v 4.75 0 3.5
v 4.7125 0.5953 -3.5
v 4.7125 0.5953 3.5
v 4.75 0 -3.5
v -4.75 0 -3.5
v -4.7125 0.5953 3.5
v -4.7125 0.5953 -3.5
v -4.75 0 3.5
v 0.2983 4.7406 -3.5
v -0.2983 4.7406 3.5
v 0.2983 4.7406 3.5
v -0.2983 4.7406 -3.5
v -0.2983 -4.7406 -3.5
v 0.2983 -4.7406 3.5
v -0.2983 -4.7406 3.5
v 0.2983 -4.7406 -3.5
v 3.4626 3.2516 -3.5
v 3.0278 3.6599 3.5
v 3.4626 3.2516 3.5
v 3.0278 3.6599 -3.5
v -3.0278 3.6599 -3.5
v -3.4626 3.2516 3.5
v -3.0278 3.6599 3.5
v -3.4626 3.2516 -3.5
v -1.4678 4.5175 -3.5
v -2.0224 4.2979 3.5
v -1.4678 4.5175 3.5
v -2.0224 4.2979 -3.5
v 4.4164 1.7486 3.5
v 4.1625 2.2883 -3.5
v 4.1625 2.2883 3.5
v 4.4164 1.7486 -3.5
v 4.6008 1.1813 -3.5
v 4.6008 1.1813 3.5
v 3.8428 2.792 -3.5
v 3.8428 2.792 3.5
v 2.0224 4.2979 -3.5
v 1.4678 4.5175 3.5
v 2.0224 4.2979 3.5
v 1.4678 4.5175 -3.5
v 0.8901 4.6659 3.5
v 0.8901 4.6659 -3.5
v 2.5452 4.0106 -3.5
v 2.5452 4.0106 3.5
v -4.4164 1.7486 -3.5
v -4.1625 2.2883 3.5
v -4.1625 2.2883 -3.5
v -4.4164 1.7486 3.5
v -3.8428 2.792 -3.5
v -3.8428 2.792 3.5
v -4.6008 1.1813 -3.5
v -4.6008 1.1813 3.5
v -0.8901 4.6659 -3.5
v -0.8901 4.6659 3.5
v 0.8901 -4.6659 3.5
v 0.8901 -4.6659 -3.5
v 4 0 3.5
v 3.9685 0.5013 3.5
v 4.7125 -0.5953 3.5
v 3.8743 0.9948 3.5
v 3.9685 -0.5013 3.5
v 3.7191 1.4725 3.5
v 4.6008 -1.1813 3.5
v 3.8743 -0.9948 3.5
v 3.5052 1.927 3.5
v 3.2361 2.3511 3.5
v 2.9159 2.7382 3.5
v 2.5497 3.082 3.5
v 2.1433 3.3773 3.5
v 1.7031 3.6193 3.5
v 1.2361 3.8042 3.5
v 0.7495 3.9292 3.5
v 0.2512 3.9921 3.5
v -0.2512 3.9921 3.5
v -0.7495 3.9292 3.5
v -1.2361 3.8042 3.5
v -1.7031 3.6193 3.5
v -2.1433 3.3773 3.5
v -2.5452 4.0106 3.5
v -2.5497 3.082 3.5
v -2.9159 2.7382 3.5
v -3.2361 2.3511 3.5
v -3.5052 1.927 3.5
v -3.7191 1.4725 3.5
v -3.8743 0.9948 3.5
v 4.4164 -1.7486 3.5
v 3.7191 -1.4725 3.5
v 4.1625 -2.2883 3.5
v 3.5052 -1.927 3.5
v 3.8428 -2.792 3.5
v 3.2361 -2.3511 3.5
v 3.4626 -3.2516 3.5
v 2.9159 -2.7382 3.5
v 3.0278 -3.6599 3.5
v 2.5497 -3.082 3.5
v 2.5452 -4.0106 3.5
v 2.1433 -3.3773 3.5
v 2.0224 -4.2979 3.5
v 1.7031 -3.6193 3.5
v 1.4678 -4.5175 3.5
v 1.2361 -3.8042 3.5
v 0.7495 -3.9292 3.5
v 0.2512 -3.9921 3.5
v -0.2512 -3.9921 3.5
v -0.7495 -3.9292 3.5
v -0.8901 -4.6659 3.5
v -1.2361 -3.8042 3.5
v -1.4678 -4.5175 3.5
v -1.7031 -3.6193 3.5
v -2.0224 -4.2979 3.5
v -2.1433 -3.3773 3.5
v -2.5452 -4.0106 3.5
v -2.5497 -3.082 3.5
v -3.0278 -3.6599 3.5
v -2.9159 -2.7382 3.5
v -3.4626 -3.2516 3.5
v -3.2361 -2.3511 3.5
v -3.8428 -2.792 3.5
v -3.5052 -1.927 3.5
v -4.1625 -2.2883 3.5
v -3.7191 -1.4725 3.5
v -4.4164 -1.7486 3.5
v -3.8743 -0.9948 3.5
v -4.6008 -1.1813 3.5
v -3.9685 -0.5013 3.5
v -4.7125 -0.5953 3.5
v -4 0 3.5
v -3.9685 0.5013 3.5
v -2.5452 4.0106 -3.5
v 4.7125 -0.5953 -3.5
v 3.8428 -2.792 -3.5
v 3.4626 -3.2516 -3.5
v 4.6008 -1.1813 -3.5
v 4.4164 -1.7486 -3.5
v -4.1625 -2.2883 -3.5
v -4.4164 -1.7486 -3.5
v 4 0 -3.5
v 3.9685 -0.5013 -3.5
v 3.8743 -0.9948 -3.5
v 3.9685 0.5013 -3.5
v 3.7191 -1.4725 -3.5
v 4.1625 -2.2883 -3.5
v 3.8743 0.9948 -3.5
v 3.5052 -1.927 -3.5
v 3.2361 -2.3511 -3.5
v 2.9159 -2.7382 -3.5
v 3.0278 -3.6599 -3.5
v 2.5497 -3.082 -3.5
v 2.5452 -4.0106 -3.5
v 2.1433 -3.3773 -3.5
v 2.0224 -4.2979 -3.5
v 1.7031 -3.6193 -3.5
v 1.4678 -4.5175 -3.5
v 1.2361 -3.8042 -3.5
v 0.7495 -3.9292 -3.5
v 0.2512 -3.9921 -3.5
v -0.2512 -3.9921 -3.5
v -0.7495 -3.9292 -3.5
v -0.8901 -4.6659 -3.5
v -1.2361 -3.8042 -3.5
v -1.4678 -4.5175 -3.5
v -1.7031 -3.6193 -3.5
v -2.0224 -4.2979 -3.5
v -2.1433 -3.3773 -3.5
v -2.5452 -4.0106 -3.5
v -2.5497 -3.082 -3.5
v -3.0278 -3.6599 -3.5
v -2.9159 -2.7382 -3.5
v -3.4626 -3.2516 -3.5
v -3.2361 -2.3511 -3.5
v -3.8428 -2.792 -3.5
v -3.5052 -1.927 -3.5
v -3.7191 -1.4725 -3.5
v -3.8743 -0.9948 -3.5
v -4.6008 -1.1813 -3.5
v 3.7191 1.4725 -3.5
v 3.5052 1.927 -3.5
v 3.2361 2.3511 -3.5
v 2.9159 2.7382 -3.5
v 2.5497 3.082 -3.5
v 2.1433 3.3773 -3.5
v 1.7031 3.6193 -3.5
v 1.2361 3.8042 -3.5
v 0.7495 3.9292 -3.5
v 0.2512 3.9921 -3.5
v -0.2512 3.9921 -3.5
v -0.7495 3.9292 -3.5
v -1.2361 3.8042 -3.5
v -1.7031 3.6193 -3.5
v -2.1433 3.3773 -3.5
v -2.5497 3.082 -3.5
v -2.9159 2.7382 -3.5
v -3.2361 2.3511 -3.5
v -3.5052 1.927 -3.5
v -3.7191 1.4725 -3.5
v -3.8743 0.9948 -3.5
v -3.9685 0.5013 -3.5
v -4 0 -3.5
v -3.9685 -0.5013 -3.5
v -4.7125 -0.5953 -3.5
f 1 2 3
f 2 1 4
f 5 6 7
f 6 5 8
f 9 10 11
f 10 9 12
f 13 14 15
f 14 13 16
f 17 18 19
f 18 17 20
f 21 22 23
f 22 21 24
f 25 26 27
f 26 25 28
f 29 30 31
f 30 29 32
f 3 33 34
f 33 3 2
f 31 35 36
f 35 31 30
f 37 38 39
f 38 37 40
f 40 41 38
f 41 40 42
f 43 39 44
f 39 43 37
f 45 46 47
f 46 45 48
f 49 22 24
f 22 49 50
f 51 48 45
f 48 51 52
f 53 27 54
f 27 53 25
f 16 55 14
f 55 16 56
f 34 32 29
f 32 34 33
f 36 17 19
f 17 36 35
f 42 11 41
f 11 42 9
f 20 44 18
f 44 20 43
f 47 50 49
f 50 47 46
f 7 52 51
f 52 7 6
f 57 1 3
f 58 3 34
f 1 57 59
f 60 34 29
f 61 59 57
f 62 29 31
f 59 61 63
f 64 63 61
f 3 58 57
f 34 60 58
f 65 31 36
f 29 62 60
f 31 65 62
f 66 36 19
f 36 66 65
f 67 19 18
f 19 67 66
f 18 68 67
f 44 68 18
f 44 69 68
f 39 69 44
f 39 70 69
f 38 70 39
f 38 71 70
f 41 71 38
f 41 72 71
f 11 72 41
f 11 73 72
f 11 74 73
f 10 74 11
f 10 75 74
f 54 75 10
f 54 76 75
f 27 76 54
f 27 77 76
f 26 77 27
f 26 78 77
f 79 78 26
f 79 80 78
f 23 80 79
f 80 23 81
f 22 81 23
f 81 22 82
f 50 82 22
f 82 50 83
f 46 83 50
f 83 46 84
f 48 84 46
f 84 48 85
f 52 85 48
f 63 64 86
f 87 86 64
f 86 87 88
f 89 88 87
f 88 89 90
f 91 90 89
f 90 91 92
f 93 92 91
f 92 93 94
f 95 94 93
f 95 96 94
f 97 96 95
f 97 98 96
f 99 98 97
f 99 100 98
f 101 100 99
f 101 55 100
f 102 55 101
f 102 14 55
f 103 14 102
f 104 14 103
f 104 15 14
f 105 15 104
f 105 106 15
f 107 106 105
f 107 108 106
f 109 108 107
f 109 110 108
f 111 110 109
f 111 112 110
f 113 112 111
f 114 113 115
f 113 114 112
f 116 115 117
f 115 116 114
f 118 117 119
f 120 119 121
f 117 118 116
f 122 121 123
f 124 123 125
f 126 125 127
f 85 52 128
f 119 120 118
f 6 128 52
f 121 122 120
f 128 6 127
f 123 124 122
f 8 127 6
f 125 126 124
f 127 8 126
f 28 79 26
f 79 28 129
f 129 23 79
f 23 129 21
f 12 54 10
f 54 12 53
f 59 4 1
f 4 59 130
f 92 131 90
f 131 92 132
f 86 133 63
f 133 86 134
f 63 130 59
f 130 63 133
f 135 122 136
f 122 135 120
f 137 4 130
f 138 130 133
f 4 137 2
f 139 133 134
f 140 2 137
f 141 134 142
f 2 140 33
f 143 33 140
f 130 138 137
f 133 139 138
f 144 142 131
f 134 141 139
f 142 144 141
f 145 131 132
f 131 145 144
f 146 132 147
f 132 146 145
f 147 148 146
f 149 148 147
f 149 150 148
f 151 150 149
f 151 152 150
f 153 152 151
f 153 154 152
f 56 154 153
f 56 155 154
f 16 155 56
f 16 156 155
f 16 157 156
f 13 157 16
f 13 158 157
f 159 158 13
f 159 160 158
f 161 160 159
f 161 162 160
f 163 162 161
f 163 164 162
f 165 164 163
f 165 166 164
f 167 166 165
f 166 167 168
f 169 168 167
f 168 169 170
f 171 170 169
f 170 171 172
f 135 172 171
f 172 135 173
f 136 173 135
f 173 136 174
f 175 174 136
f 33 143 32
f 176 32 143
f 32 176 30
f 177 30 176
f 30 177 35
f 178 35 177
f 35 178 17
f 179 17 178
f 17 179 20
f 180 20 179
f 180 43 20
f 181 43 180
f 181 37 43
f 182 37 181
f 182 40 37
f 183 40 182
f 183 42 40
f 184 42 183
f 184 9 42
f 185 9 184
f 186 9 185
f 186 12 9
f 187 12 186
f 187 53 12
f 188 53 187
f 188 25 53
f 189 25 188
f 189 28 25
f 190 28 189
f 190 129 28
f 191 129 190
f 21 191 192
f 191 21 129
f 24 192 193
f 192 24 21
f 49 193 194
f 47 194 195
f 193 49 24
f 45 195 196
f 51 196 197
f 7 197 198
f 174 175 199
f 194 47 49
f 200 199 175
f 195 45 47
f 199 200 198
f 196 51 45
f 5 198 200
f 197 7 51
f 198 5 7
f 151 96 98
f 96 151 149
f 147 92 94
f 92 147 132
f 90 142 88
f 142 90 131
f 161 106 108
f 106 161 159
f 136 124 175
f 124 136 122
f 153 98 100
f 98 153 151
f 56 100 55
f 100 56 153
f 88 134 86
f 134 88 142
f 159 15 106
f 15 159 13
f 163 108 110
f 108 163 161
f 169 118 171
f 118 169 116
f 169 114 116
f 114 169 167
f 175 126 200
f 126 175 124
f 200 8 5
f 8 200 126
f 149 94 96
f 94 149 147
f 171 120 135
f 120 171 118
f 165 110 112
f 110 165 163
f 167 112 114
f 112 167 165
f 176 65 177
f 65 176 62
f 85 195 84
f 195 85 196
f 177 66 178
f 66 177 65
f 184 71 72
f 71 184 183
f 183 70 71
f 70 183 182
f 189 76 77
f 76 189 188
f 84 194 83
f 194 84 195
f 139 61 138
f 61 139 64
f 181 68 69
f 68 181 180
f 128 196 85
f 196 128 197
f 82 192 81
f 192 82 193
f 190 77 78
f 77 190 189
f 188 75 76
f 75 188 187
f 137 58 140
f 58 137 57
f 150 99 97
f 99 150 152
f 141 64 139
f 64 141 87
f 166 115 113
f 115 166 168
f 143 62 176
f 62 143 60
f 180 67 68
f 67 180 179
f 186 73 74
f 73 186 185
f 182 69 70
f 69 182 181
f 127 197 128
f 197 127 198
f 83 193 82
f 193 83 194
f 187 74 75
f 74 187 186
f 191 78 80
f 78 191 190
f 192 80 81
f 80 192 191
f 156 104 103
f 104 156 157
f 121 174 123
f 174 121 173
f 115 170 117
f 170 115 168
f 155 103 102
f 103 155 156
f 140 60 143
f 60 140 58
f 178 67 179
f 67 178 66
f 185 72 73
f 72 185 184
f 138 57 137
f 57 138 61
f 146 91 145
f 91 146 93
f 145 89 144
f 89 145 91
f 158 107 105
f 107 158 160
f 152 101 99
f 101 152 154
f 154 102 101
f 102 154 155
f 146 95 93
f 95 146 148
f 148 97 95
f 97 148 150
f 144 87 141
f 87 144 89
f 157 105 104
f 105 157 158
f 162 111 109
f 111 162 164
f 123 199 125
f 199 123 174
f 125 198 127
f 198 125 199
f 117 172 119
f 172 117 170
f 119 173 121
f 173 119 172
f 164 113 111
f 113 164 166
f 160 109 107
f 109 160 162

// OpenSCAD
$fn = 50;


difference() {
	union() {
		translate(v = [0, 0, -3.5000000000]) {
			cylinder(h = 7, r = 4.7500000000);
		}
	}
	union() {
		translate(v = [0, 0, -100.0000000000]) {
			cylinder(h = 200, r = 4.0000000000);
		}
	}
}
